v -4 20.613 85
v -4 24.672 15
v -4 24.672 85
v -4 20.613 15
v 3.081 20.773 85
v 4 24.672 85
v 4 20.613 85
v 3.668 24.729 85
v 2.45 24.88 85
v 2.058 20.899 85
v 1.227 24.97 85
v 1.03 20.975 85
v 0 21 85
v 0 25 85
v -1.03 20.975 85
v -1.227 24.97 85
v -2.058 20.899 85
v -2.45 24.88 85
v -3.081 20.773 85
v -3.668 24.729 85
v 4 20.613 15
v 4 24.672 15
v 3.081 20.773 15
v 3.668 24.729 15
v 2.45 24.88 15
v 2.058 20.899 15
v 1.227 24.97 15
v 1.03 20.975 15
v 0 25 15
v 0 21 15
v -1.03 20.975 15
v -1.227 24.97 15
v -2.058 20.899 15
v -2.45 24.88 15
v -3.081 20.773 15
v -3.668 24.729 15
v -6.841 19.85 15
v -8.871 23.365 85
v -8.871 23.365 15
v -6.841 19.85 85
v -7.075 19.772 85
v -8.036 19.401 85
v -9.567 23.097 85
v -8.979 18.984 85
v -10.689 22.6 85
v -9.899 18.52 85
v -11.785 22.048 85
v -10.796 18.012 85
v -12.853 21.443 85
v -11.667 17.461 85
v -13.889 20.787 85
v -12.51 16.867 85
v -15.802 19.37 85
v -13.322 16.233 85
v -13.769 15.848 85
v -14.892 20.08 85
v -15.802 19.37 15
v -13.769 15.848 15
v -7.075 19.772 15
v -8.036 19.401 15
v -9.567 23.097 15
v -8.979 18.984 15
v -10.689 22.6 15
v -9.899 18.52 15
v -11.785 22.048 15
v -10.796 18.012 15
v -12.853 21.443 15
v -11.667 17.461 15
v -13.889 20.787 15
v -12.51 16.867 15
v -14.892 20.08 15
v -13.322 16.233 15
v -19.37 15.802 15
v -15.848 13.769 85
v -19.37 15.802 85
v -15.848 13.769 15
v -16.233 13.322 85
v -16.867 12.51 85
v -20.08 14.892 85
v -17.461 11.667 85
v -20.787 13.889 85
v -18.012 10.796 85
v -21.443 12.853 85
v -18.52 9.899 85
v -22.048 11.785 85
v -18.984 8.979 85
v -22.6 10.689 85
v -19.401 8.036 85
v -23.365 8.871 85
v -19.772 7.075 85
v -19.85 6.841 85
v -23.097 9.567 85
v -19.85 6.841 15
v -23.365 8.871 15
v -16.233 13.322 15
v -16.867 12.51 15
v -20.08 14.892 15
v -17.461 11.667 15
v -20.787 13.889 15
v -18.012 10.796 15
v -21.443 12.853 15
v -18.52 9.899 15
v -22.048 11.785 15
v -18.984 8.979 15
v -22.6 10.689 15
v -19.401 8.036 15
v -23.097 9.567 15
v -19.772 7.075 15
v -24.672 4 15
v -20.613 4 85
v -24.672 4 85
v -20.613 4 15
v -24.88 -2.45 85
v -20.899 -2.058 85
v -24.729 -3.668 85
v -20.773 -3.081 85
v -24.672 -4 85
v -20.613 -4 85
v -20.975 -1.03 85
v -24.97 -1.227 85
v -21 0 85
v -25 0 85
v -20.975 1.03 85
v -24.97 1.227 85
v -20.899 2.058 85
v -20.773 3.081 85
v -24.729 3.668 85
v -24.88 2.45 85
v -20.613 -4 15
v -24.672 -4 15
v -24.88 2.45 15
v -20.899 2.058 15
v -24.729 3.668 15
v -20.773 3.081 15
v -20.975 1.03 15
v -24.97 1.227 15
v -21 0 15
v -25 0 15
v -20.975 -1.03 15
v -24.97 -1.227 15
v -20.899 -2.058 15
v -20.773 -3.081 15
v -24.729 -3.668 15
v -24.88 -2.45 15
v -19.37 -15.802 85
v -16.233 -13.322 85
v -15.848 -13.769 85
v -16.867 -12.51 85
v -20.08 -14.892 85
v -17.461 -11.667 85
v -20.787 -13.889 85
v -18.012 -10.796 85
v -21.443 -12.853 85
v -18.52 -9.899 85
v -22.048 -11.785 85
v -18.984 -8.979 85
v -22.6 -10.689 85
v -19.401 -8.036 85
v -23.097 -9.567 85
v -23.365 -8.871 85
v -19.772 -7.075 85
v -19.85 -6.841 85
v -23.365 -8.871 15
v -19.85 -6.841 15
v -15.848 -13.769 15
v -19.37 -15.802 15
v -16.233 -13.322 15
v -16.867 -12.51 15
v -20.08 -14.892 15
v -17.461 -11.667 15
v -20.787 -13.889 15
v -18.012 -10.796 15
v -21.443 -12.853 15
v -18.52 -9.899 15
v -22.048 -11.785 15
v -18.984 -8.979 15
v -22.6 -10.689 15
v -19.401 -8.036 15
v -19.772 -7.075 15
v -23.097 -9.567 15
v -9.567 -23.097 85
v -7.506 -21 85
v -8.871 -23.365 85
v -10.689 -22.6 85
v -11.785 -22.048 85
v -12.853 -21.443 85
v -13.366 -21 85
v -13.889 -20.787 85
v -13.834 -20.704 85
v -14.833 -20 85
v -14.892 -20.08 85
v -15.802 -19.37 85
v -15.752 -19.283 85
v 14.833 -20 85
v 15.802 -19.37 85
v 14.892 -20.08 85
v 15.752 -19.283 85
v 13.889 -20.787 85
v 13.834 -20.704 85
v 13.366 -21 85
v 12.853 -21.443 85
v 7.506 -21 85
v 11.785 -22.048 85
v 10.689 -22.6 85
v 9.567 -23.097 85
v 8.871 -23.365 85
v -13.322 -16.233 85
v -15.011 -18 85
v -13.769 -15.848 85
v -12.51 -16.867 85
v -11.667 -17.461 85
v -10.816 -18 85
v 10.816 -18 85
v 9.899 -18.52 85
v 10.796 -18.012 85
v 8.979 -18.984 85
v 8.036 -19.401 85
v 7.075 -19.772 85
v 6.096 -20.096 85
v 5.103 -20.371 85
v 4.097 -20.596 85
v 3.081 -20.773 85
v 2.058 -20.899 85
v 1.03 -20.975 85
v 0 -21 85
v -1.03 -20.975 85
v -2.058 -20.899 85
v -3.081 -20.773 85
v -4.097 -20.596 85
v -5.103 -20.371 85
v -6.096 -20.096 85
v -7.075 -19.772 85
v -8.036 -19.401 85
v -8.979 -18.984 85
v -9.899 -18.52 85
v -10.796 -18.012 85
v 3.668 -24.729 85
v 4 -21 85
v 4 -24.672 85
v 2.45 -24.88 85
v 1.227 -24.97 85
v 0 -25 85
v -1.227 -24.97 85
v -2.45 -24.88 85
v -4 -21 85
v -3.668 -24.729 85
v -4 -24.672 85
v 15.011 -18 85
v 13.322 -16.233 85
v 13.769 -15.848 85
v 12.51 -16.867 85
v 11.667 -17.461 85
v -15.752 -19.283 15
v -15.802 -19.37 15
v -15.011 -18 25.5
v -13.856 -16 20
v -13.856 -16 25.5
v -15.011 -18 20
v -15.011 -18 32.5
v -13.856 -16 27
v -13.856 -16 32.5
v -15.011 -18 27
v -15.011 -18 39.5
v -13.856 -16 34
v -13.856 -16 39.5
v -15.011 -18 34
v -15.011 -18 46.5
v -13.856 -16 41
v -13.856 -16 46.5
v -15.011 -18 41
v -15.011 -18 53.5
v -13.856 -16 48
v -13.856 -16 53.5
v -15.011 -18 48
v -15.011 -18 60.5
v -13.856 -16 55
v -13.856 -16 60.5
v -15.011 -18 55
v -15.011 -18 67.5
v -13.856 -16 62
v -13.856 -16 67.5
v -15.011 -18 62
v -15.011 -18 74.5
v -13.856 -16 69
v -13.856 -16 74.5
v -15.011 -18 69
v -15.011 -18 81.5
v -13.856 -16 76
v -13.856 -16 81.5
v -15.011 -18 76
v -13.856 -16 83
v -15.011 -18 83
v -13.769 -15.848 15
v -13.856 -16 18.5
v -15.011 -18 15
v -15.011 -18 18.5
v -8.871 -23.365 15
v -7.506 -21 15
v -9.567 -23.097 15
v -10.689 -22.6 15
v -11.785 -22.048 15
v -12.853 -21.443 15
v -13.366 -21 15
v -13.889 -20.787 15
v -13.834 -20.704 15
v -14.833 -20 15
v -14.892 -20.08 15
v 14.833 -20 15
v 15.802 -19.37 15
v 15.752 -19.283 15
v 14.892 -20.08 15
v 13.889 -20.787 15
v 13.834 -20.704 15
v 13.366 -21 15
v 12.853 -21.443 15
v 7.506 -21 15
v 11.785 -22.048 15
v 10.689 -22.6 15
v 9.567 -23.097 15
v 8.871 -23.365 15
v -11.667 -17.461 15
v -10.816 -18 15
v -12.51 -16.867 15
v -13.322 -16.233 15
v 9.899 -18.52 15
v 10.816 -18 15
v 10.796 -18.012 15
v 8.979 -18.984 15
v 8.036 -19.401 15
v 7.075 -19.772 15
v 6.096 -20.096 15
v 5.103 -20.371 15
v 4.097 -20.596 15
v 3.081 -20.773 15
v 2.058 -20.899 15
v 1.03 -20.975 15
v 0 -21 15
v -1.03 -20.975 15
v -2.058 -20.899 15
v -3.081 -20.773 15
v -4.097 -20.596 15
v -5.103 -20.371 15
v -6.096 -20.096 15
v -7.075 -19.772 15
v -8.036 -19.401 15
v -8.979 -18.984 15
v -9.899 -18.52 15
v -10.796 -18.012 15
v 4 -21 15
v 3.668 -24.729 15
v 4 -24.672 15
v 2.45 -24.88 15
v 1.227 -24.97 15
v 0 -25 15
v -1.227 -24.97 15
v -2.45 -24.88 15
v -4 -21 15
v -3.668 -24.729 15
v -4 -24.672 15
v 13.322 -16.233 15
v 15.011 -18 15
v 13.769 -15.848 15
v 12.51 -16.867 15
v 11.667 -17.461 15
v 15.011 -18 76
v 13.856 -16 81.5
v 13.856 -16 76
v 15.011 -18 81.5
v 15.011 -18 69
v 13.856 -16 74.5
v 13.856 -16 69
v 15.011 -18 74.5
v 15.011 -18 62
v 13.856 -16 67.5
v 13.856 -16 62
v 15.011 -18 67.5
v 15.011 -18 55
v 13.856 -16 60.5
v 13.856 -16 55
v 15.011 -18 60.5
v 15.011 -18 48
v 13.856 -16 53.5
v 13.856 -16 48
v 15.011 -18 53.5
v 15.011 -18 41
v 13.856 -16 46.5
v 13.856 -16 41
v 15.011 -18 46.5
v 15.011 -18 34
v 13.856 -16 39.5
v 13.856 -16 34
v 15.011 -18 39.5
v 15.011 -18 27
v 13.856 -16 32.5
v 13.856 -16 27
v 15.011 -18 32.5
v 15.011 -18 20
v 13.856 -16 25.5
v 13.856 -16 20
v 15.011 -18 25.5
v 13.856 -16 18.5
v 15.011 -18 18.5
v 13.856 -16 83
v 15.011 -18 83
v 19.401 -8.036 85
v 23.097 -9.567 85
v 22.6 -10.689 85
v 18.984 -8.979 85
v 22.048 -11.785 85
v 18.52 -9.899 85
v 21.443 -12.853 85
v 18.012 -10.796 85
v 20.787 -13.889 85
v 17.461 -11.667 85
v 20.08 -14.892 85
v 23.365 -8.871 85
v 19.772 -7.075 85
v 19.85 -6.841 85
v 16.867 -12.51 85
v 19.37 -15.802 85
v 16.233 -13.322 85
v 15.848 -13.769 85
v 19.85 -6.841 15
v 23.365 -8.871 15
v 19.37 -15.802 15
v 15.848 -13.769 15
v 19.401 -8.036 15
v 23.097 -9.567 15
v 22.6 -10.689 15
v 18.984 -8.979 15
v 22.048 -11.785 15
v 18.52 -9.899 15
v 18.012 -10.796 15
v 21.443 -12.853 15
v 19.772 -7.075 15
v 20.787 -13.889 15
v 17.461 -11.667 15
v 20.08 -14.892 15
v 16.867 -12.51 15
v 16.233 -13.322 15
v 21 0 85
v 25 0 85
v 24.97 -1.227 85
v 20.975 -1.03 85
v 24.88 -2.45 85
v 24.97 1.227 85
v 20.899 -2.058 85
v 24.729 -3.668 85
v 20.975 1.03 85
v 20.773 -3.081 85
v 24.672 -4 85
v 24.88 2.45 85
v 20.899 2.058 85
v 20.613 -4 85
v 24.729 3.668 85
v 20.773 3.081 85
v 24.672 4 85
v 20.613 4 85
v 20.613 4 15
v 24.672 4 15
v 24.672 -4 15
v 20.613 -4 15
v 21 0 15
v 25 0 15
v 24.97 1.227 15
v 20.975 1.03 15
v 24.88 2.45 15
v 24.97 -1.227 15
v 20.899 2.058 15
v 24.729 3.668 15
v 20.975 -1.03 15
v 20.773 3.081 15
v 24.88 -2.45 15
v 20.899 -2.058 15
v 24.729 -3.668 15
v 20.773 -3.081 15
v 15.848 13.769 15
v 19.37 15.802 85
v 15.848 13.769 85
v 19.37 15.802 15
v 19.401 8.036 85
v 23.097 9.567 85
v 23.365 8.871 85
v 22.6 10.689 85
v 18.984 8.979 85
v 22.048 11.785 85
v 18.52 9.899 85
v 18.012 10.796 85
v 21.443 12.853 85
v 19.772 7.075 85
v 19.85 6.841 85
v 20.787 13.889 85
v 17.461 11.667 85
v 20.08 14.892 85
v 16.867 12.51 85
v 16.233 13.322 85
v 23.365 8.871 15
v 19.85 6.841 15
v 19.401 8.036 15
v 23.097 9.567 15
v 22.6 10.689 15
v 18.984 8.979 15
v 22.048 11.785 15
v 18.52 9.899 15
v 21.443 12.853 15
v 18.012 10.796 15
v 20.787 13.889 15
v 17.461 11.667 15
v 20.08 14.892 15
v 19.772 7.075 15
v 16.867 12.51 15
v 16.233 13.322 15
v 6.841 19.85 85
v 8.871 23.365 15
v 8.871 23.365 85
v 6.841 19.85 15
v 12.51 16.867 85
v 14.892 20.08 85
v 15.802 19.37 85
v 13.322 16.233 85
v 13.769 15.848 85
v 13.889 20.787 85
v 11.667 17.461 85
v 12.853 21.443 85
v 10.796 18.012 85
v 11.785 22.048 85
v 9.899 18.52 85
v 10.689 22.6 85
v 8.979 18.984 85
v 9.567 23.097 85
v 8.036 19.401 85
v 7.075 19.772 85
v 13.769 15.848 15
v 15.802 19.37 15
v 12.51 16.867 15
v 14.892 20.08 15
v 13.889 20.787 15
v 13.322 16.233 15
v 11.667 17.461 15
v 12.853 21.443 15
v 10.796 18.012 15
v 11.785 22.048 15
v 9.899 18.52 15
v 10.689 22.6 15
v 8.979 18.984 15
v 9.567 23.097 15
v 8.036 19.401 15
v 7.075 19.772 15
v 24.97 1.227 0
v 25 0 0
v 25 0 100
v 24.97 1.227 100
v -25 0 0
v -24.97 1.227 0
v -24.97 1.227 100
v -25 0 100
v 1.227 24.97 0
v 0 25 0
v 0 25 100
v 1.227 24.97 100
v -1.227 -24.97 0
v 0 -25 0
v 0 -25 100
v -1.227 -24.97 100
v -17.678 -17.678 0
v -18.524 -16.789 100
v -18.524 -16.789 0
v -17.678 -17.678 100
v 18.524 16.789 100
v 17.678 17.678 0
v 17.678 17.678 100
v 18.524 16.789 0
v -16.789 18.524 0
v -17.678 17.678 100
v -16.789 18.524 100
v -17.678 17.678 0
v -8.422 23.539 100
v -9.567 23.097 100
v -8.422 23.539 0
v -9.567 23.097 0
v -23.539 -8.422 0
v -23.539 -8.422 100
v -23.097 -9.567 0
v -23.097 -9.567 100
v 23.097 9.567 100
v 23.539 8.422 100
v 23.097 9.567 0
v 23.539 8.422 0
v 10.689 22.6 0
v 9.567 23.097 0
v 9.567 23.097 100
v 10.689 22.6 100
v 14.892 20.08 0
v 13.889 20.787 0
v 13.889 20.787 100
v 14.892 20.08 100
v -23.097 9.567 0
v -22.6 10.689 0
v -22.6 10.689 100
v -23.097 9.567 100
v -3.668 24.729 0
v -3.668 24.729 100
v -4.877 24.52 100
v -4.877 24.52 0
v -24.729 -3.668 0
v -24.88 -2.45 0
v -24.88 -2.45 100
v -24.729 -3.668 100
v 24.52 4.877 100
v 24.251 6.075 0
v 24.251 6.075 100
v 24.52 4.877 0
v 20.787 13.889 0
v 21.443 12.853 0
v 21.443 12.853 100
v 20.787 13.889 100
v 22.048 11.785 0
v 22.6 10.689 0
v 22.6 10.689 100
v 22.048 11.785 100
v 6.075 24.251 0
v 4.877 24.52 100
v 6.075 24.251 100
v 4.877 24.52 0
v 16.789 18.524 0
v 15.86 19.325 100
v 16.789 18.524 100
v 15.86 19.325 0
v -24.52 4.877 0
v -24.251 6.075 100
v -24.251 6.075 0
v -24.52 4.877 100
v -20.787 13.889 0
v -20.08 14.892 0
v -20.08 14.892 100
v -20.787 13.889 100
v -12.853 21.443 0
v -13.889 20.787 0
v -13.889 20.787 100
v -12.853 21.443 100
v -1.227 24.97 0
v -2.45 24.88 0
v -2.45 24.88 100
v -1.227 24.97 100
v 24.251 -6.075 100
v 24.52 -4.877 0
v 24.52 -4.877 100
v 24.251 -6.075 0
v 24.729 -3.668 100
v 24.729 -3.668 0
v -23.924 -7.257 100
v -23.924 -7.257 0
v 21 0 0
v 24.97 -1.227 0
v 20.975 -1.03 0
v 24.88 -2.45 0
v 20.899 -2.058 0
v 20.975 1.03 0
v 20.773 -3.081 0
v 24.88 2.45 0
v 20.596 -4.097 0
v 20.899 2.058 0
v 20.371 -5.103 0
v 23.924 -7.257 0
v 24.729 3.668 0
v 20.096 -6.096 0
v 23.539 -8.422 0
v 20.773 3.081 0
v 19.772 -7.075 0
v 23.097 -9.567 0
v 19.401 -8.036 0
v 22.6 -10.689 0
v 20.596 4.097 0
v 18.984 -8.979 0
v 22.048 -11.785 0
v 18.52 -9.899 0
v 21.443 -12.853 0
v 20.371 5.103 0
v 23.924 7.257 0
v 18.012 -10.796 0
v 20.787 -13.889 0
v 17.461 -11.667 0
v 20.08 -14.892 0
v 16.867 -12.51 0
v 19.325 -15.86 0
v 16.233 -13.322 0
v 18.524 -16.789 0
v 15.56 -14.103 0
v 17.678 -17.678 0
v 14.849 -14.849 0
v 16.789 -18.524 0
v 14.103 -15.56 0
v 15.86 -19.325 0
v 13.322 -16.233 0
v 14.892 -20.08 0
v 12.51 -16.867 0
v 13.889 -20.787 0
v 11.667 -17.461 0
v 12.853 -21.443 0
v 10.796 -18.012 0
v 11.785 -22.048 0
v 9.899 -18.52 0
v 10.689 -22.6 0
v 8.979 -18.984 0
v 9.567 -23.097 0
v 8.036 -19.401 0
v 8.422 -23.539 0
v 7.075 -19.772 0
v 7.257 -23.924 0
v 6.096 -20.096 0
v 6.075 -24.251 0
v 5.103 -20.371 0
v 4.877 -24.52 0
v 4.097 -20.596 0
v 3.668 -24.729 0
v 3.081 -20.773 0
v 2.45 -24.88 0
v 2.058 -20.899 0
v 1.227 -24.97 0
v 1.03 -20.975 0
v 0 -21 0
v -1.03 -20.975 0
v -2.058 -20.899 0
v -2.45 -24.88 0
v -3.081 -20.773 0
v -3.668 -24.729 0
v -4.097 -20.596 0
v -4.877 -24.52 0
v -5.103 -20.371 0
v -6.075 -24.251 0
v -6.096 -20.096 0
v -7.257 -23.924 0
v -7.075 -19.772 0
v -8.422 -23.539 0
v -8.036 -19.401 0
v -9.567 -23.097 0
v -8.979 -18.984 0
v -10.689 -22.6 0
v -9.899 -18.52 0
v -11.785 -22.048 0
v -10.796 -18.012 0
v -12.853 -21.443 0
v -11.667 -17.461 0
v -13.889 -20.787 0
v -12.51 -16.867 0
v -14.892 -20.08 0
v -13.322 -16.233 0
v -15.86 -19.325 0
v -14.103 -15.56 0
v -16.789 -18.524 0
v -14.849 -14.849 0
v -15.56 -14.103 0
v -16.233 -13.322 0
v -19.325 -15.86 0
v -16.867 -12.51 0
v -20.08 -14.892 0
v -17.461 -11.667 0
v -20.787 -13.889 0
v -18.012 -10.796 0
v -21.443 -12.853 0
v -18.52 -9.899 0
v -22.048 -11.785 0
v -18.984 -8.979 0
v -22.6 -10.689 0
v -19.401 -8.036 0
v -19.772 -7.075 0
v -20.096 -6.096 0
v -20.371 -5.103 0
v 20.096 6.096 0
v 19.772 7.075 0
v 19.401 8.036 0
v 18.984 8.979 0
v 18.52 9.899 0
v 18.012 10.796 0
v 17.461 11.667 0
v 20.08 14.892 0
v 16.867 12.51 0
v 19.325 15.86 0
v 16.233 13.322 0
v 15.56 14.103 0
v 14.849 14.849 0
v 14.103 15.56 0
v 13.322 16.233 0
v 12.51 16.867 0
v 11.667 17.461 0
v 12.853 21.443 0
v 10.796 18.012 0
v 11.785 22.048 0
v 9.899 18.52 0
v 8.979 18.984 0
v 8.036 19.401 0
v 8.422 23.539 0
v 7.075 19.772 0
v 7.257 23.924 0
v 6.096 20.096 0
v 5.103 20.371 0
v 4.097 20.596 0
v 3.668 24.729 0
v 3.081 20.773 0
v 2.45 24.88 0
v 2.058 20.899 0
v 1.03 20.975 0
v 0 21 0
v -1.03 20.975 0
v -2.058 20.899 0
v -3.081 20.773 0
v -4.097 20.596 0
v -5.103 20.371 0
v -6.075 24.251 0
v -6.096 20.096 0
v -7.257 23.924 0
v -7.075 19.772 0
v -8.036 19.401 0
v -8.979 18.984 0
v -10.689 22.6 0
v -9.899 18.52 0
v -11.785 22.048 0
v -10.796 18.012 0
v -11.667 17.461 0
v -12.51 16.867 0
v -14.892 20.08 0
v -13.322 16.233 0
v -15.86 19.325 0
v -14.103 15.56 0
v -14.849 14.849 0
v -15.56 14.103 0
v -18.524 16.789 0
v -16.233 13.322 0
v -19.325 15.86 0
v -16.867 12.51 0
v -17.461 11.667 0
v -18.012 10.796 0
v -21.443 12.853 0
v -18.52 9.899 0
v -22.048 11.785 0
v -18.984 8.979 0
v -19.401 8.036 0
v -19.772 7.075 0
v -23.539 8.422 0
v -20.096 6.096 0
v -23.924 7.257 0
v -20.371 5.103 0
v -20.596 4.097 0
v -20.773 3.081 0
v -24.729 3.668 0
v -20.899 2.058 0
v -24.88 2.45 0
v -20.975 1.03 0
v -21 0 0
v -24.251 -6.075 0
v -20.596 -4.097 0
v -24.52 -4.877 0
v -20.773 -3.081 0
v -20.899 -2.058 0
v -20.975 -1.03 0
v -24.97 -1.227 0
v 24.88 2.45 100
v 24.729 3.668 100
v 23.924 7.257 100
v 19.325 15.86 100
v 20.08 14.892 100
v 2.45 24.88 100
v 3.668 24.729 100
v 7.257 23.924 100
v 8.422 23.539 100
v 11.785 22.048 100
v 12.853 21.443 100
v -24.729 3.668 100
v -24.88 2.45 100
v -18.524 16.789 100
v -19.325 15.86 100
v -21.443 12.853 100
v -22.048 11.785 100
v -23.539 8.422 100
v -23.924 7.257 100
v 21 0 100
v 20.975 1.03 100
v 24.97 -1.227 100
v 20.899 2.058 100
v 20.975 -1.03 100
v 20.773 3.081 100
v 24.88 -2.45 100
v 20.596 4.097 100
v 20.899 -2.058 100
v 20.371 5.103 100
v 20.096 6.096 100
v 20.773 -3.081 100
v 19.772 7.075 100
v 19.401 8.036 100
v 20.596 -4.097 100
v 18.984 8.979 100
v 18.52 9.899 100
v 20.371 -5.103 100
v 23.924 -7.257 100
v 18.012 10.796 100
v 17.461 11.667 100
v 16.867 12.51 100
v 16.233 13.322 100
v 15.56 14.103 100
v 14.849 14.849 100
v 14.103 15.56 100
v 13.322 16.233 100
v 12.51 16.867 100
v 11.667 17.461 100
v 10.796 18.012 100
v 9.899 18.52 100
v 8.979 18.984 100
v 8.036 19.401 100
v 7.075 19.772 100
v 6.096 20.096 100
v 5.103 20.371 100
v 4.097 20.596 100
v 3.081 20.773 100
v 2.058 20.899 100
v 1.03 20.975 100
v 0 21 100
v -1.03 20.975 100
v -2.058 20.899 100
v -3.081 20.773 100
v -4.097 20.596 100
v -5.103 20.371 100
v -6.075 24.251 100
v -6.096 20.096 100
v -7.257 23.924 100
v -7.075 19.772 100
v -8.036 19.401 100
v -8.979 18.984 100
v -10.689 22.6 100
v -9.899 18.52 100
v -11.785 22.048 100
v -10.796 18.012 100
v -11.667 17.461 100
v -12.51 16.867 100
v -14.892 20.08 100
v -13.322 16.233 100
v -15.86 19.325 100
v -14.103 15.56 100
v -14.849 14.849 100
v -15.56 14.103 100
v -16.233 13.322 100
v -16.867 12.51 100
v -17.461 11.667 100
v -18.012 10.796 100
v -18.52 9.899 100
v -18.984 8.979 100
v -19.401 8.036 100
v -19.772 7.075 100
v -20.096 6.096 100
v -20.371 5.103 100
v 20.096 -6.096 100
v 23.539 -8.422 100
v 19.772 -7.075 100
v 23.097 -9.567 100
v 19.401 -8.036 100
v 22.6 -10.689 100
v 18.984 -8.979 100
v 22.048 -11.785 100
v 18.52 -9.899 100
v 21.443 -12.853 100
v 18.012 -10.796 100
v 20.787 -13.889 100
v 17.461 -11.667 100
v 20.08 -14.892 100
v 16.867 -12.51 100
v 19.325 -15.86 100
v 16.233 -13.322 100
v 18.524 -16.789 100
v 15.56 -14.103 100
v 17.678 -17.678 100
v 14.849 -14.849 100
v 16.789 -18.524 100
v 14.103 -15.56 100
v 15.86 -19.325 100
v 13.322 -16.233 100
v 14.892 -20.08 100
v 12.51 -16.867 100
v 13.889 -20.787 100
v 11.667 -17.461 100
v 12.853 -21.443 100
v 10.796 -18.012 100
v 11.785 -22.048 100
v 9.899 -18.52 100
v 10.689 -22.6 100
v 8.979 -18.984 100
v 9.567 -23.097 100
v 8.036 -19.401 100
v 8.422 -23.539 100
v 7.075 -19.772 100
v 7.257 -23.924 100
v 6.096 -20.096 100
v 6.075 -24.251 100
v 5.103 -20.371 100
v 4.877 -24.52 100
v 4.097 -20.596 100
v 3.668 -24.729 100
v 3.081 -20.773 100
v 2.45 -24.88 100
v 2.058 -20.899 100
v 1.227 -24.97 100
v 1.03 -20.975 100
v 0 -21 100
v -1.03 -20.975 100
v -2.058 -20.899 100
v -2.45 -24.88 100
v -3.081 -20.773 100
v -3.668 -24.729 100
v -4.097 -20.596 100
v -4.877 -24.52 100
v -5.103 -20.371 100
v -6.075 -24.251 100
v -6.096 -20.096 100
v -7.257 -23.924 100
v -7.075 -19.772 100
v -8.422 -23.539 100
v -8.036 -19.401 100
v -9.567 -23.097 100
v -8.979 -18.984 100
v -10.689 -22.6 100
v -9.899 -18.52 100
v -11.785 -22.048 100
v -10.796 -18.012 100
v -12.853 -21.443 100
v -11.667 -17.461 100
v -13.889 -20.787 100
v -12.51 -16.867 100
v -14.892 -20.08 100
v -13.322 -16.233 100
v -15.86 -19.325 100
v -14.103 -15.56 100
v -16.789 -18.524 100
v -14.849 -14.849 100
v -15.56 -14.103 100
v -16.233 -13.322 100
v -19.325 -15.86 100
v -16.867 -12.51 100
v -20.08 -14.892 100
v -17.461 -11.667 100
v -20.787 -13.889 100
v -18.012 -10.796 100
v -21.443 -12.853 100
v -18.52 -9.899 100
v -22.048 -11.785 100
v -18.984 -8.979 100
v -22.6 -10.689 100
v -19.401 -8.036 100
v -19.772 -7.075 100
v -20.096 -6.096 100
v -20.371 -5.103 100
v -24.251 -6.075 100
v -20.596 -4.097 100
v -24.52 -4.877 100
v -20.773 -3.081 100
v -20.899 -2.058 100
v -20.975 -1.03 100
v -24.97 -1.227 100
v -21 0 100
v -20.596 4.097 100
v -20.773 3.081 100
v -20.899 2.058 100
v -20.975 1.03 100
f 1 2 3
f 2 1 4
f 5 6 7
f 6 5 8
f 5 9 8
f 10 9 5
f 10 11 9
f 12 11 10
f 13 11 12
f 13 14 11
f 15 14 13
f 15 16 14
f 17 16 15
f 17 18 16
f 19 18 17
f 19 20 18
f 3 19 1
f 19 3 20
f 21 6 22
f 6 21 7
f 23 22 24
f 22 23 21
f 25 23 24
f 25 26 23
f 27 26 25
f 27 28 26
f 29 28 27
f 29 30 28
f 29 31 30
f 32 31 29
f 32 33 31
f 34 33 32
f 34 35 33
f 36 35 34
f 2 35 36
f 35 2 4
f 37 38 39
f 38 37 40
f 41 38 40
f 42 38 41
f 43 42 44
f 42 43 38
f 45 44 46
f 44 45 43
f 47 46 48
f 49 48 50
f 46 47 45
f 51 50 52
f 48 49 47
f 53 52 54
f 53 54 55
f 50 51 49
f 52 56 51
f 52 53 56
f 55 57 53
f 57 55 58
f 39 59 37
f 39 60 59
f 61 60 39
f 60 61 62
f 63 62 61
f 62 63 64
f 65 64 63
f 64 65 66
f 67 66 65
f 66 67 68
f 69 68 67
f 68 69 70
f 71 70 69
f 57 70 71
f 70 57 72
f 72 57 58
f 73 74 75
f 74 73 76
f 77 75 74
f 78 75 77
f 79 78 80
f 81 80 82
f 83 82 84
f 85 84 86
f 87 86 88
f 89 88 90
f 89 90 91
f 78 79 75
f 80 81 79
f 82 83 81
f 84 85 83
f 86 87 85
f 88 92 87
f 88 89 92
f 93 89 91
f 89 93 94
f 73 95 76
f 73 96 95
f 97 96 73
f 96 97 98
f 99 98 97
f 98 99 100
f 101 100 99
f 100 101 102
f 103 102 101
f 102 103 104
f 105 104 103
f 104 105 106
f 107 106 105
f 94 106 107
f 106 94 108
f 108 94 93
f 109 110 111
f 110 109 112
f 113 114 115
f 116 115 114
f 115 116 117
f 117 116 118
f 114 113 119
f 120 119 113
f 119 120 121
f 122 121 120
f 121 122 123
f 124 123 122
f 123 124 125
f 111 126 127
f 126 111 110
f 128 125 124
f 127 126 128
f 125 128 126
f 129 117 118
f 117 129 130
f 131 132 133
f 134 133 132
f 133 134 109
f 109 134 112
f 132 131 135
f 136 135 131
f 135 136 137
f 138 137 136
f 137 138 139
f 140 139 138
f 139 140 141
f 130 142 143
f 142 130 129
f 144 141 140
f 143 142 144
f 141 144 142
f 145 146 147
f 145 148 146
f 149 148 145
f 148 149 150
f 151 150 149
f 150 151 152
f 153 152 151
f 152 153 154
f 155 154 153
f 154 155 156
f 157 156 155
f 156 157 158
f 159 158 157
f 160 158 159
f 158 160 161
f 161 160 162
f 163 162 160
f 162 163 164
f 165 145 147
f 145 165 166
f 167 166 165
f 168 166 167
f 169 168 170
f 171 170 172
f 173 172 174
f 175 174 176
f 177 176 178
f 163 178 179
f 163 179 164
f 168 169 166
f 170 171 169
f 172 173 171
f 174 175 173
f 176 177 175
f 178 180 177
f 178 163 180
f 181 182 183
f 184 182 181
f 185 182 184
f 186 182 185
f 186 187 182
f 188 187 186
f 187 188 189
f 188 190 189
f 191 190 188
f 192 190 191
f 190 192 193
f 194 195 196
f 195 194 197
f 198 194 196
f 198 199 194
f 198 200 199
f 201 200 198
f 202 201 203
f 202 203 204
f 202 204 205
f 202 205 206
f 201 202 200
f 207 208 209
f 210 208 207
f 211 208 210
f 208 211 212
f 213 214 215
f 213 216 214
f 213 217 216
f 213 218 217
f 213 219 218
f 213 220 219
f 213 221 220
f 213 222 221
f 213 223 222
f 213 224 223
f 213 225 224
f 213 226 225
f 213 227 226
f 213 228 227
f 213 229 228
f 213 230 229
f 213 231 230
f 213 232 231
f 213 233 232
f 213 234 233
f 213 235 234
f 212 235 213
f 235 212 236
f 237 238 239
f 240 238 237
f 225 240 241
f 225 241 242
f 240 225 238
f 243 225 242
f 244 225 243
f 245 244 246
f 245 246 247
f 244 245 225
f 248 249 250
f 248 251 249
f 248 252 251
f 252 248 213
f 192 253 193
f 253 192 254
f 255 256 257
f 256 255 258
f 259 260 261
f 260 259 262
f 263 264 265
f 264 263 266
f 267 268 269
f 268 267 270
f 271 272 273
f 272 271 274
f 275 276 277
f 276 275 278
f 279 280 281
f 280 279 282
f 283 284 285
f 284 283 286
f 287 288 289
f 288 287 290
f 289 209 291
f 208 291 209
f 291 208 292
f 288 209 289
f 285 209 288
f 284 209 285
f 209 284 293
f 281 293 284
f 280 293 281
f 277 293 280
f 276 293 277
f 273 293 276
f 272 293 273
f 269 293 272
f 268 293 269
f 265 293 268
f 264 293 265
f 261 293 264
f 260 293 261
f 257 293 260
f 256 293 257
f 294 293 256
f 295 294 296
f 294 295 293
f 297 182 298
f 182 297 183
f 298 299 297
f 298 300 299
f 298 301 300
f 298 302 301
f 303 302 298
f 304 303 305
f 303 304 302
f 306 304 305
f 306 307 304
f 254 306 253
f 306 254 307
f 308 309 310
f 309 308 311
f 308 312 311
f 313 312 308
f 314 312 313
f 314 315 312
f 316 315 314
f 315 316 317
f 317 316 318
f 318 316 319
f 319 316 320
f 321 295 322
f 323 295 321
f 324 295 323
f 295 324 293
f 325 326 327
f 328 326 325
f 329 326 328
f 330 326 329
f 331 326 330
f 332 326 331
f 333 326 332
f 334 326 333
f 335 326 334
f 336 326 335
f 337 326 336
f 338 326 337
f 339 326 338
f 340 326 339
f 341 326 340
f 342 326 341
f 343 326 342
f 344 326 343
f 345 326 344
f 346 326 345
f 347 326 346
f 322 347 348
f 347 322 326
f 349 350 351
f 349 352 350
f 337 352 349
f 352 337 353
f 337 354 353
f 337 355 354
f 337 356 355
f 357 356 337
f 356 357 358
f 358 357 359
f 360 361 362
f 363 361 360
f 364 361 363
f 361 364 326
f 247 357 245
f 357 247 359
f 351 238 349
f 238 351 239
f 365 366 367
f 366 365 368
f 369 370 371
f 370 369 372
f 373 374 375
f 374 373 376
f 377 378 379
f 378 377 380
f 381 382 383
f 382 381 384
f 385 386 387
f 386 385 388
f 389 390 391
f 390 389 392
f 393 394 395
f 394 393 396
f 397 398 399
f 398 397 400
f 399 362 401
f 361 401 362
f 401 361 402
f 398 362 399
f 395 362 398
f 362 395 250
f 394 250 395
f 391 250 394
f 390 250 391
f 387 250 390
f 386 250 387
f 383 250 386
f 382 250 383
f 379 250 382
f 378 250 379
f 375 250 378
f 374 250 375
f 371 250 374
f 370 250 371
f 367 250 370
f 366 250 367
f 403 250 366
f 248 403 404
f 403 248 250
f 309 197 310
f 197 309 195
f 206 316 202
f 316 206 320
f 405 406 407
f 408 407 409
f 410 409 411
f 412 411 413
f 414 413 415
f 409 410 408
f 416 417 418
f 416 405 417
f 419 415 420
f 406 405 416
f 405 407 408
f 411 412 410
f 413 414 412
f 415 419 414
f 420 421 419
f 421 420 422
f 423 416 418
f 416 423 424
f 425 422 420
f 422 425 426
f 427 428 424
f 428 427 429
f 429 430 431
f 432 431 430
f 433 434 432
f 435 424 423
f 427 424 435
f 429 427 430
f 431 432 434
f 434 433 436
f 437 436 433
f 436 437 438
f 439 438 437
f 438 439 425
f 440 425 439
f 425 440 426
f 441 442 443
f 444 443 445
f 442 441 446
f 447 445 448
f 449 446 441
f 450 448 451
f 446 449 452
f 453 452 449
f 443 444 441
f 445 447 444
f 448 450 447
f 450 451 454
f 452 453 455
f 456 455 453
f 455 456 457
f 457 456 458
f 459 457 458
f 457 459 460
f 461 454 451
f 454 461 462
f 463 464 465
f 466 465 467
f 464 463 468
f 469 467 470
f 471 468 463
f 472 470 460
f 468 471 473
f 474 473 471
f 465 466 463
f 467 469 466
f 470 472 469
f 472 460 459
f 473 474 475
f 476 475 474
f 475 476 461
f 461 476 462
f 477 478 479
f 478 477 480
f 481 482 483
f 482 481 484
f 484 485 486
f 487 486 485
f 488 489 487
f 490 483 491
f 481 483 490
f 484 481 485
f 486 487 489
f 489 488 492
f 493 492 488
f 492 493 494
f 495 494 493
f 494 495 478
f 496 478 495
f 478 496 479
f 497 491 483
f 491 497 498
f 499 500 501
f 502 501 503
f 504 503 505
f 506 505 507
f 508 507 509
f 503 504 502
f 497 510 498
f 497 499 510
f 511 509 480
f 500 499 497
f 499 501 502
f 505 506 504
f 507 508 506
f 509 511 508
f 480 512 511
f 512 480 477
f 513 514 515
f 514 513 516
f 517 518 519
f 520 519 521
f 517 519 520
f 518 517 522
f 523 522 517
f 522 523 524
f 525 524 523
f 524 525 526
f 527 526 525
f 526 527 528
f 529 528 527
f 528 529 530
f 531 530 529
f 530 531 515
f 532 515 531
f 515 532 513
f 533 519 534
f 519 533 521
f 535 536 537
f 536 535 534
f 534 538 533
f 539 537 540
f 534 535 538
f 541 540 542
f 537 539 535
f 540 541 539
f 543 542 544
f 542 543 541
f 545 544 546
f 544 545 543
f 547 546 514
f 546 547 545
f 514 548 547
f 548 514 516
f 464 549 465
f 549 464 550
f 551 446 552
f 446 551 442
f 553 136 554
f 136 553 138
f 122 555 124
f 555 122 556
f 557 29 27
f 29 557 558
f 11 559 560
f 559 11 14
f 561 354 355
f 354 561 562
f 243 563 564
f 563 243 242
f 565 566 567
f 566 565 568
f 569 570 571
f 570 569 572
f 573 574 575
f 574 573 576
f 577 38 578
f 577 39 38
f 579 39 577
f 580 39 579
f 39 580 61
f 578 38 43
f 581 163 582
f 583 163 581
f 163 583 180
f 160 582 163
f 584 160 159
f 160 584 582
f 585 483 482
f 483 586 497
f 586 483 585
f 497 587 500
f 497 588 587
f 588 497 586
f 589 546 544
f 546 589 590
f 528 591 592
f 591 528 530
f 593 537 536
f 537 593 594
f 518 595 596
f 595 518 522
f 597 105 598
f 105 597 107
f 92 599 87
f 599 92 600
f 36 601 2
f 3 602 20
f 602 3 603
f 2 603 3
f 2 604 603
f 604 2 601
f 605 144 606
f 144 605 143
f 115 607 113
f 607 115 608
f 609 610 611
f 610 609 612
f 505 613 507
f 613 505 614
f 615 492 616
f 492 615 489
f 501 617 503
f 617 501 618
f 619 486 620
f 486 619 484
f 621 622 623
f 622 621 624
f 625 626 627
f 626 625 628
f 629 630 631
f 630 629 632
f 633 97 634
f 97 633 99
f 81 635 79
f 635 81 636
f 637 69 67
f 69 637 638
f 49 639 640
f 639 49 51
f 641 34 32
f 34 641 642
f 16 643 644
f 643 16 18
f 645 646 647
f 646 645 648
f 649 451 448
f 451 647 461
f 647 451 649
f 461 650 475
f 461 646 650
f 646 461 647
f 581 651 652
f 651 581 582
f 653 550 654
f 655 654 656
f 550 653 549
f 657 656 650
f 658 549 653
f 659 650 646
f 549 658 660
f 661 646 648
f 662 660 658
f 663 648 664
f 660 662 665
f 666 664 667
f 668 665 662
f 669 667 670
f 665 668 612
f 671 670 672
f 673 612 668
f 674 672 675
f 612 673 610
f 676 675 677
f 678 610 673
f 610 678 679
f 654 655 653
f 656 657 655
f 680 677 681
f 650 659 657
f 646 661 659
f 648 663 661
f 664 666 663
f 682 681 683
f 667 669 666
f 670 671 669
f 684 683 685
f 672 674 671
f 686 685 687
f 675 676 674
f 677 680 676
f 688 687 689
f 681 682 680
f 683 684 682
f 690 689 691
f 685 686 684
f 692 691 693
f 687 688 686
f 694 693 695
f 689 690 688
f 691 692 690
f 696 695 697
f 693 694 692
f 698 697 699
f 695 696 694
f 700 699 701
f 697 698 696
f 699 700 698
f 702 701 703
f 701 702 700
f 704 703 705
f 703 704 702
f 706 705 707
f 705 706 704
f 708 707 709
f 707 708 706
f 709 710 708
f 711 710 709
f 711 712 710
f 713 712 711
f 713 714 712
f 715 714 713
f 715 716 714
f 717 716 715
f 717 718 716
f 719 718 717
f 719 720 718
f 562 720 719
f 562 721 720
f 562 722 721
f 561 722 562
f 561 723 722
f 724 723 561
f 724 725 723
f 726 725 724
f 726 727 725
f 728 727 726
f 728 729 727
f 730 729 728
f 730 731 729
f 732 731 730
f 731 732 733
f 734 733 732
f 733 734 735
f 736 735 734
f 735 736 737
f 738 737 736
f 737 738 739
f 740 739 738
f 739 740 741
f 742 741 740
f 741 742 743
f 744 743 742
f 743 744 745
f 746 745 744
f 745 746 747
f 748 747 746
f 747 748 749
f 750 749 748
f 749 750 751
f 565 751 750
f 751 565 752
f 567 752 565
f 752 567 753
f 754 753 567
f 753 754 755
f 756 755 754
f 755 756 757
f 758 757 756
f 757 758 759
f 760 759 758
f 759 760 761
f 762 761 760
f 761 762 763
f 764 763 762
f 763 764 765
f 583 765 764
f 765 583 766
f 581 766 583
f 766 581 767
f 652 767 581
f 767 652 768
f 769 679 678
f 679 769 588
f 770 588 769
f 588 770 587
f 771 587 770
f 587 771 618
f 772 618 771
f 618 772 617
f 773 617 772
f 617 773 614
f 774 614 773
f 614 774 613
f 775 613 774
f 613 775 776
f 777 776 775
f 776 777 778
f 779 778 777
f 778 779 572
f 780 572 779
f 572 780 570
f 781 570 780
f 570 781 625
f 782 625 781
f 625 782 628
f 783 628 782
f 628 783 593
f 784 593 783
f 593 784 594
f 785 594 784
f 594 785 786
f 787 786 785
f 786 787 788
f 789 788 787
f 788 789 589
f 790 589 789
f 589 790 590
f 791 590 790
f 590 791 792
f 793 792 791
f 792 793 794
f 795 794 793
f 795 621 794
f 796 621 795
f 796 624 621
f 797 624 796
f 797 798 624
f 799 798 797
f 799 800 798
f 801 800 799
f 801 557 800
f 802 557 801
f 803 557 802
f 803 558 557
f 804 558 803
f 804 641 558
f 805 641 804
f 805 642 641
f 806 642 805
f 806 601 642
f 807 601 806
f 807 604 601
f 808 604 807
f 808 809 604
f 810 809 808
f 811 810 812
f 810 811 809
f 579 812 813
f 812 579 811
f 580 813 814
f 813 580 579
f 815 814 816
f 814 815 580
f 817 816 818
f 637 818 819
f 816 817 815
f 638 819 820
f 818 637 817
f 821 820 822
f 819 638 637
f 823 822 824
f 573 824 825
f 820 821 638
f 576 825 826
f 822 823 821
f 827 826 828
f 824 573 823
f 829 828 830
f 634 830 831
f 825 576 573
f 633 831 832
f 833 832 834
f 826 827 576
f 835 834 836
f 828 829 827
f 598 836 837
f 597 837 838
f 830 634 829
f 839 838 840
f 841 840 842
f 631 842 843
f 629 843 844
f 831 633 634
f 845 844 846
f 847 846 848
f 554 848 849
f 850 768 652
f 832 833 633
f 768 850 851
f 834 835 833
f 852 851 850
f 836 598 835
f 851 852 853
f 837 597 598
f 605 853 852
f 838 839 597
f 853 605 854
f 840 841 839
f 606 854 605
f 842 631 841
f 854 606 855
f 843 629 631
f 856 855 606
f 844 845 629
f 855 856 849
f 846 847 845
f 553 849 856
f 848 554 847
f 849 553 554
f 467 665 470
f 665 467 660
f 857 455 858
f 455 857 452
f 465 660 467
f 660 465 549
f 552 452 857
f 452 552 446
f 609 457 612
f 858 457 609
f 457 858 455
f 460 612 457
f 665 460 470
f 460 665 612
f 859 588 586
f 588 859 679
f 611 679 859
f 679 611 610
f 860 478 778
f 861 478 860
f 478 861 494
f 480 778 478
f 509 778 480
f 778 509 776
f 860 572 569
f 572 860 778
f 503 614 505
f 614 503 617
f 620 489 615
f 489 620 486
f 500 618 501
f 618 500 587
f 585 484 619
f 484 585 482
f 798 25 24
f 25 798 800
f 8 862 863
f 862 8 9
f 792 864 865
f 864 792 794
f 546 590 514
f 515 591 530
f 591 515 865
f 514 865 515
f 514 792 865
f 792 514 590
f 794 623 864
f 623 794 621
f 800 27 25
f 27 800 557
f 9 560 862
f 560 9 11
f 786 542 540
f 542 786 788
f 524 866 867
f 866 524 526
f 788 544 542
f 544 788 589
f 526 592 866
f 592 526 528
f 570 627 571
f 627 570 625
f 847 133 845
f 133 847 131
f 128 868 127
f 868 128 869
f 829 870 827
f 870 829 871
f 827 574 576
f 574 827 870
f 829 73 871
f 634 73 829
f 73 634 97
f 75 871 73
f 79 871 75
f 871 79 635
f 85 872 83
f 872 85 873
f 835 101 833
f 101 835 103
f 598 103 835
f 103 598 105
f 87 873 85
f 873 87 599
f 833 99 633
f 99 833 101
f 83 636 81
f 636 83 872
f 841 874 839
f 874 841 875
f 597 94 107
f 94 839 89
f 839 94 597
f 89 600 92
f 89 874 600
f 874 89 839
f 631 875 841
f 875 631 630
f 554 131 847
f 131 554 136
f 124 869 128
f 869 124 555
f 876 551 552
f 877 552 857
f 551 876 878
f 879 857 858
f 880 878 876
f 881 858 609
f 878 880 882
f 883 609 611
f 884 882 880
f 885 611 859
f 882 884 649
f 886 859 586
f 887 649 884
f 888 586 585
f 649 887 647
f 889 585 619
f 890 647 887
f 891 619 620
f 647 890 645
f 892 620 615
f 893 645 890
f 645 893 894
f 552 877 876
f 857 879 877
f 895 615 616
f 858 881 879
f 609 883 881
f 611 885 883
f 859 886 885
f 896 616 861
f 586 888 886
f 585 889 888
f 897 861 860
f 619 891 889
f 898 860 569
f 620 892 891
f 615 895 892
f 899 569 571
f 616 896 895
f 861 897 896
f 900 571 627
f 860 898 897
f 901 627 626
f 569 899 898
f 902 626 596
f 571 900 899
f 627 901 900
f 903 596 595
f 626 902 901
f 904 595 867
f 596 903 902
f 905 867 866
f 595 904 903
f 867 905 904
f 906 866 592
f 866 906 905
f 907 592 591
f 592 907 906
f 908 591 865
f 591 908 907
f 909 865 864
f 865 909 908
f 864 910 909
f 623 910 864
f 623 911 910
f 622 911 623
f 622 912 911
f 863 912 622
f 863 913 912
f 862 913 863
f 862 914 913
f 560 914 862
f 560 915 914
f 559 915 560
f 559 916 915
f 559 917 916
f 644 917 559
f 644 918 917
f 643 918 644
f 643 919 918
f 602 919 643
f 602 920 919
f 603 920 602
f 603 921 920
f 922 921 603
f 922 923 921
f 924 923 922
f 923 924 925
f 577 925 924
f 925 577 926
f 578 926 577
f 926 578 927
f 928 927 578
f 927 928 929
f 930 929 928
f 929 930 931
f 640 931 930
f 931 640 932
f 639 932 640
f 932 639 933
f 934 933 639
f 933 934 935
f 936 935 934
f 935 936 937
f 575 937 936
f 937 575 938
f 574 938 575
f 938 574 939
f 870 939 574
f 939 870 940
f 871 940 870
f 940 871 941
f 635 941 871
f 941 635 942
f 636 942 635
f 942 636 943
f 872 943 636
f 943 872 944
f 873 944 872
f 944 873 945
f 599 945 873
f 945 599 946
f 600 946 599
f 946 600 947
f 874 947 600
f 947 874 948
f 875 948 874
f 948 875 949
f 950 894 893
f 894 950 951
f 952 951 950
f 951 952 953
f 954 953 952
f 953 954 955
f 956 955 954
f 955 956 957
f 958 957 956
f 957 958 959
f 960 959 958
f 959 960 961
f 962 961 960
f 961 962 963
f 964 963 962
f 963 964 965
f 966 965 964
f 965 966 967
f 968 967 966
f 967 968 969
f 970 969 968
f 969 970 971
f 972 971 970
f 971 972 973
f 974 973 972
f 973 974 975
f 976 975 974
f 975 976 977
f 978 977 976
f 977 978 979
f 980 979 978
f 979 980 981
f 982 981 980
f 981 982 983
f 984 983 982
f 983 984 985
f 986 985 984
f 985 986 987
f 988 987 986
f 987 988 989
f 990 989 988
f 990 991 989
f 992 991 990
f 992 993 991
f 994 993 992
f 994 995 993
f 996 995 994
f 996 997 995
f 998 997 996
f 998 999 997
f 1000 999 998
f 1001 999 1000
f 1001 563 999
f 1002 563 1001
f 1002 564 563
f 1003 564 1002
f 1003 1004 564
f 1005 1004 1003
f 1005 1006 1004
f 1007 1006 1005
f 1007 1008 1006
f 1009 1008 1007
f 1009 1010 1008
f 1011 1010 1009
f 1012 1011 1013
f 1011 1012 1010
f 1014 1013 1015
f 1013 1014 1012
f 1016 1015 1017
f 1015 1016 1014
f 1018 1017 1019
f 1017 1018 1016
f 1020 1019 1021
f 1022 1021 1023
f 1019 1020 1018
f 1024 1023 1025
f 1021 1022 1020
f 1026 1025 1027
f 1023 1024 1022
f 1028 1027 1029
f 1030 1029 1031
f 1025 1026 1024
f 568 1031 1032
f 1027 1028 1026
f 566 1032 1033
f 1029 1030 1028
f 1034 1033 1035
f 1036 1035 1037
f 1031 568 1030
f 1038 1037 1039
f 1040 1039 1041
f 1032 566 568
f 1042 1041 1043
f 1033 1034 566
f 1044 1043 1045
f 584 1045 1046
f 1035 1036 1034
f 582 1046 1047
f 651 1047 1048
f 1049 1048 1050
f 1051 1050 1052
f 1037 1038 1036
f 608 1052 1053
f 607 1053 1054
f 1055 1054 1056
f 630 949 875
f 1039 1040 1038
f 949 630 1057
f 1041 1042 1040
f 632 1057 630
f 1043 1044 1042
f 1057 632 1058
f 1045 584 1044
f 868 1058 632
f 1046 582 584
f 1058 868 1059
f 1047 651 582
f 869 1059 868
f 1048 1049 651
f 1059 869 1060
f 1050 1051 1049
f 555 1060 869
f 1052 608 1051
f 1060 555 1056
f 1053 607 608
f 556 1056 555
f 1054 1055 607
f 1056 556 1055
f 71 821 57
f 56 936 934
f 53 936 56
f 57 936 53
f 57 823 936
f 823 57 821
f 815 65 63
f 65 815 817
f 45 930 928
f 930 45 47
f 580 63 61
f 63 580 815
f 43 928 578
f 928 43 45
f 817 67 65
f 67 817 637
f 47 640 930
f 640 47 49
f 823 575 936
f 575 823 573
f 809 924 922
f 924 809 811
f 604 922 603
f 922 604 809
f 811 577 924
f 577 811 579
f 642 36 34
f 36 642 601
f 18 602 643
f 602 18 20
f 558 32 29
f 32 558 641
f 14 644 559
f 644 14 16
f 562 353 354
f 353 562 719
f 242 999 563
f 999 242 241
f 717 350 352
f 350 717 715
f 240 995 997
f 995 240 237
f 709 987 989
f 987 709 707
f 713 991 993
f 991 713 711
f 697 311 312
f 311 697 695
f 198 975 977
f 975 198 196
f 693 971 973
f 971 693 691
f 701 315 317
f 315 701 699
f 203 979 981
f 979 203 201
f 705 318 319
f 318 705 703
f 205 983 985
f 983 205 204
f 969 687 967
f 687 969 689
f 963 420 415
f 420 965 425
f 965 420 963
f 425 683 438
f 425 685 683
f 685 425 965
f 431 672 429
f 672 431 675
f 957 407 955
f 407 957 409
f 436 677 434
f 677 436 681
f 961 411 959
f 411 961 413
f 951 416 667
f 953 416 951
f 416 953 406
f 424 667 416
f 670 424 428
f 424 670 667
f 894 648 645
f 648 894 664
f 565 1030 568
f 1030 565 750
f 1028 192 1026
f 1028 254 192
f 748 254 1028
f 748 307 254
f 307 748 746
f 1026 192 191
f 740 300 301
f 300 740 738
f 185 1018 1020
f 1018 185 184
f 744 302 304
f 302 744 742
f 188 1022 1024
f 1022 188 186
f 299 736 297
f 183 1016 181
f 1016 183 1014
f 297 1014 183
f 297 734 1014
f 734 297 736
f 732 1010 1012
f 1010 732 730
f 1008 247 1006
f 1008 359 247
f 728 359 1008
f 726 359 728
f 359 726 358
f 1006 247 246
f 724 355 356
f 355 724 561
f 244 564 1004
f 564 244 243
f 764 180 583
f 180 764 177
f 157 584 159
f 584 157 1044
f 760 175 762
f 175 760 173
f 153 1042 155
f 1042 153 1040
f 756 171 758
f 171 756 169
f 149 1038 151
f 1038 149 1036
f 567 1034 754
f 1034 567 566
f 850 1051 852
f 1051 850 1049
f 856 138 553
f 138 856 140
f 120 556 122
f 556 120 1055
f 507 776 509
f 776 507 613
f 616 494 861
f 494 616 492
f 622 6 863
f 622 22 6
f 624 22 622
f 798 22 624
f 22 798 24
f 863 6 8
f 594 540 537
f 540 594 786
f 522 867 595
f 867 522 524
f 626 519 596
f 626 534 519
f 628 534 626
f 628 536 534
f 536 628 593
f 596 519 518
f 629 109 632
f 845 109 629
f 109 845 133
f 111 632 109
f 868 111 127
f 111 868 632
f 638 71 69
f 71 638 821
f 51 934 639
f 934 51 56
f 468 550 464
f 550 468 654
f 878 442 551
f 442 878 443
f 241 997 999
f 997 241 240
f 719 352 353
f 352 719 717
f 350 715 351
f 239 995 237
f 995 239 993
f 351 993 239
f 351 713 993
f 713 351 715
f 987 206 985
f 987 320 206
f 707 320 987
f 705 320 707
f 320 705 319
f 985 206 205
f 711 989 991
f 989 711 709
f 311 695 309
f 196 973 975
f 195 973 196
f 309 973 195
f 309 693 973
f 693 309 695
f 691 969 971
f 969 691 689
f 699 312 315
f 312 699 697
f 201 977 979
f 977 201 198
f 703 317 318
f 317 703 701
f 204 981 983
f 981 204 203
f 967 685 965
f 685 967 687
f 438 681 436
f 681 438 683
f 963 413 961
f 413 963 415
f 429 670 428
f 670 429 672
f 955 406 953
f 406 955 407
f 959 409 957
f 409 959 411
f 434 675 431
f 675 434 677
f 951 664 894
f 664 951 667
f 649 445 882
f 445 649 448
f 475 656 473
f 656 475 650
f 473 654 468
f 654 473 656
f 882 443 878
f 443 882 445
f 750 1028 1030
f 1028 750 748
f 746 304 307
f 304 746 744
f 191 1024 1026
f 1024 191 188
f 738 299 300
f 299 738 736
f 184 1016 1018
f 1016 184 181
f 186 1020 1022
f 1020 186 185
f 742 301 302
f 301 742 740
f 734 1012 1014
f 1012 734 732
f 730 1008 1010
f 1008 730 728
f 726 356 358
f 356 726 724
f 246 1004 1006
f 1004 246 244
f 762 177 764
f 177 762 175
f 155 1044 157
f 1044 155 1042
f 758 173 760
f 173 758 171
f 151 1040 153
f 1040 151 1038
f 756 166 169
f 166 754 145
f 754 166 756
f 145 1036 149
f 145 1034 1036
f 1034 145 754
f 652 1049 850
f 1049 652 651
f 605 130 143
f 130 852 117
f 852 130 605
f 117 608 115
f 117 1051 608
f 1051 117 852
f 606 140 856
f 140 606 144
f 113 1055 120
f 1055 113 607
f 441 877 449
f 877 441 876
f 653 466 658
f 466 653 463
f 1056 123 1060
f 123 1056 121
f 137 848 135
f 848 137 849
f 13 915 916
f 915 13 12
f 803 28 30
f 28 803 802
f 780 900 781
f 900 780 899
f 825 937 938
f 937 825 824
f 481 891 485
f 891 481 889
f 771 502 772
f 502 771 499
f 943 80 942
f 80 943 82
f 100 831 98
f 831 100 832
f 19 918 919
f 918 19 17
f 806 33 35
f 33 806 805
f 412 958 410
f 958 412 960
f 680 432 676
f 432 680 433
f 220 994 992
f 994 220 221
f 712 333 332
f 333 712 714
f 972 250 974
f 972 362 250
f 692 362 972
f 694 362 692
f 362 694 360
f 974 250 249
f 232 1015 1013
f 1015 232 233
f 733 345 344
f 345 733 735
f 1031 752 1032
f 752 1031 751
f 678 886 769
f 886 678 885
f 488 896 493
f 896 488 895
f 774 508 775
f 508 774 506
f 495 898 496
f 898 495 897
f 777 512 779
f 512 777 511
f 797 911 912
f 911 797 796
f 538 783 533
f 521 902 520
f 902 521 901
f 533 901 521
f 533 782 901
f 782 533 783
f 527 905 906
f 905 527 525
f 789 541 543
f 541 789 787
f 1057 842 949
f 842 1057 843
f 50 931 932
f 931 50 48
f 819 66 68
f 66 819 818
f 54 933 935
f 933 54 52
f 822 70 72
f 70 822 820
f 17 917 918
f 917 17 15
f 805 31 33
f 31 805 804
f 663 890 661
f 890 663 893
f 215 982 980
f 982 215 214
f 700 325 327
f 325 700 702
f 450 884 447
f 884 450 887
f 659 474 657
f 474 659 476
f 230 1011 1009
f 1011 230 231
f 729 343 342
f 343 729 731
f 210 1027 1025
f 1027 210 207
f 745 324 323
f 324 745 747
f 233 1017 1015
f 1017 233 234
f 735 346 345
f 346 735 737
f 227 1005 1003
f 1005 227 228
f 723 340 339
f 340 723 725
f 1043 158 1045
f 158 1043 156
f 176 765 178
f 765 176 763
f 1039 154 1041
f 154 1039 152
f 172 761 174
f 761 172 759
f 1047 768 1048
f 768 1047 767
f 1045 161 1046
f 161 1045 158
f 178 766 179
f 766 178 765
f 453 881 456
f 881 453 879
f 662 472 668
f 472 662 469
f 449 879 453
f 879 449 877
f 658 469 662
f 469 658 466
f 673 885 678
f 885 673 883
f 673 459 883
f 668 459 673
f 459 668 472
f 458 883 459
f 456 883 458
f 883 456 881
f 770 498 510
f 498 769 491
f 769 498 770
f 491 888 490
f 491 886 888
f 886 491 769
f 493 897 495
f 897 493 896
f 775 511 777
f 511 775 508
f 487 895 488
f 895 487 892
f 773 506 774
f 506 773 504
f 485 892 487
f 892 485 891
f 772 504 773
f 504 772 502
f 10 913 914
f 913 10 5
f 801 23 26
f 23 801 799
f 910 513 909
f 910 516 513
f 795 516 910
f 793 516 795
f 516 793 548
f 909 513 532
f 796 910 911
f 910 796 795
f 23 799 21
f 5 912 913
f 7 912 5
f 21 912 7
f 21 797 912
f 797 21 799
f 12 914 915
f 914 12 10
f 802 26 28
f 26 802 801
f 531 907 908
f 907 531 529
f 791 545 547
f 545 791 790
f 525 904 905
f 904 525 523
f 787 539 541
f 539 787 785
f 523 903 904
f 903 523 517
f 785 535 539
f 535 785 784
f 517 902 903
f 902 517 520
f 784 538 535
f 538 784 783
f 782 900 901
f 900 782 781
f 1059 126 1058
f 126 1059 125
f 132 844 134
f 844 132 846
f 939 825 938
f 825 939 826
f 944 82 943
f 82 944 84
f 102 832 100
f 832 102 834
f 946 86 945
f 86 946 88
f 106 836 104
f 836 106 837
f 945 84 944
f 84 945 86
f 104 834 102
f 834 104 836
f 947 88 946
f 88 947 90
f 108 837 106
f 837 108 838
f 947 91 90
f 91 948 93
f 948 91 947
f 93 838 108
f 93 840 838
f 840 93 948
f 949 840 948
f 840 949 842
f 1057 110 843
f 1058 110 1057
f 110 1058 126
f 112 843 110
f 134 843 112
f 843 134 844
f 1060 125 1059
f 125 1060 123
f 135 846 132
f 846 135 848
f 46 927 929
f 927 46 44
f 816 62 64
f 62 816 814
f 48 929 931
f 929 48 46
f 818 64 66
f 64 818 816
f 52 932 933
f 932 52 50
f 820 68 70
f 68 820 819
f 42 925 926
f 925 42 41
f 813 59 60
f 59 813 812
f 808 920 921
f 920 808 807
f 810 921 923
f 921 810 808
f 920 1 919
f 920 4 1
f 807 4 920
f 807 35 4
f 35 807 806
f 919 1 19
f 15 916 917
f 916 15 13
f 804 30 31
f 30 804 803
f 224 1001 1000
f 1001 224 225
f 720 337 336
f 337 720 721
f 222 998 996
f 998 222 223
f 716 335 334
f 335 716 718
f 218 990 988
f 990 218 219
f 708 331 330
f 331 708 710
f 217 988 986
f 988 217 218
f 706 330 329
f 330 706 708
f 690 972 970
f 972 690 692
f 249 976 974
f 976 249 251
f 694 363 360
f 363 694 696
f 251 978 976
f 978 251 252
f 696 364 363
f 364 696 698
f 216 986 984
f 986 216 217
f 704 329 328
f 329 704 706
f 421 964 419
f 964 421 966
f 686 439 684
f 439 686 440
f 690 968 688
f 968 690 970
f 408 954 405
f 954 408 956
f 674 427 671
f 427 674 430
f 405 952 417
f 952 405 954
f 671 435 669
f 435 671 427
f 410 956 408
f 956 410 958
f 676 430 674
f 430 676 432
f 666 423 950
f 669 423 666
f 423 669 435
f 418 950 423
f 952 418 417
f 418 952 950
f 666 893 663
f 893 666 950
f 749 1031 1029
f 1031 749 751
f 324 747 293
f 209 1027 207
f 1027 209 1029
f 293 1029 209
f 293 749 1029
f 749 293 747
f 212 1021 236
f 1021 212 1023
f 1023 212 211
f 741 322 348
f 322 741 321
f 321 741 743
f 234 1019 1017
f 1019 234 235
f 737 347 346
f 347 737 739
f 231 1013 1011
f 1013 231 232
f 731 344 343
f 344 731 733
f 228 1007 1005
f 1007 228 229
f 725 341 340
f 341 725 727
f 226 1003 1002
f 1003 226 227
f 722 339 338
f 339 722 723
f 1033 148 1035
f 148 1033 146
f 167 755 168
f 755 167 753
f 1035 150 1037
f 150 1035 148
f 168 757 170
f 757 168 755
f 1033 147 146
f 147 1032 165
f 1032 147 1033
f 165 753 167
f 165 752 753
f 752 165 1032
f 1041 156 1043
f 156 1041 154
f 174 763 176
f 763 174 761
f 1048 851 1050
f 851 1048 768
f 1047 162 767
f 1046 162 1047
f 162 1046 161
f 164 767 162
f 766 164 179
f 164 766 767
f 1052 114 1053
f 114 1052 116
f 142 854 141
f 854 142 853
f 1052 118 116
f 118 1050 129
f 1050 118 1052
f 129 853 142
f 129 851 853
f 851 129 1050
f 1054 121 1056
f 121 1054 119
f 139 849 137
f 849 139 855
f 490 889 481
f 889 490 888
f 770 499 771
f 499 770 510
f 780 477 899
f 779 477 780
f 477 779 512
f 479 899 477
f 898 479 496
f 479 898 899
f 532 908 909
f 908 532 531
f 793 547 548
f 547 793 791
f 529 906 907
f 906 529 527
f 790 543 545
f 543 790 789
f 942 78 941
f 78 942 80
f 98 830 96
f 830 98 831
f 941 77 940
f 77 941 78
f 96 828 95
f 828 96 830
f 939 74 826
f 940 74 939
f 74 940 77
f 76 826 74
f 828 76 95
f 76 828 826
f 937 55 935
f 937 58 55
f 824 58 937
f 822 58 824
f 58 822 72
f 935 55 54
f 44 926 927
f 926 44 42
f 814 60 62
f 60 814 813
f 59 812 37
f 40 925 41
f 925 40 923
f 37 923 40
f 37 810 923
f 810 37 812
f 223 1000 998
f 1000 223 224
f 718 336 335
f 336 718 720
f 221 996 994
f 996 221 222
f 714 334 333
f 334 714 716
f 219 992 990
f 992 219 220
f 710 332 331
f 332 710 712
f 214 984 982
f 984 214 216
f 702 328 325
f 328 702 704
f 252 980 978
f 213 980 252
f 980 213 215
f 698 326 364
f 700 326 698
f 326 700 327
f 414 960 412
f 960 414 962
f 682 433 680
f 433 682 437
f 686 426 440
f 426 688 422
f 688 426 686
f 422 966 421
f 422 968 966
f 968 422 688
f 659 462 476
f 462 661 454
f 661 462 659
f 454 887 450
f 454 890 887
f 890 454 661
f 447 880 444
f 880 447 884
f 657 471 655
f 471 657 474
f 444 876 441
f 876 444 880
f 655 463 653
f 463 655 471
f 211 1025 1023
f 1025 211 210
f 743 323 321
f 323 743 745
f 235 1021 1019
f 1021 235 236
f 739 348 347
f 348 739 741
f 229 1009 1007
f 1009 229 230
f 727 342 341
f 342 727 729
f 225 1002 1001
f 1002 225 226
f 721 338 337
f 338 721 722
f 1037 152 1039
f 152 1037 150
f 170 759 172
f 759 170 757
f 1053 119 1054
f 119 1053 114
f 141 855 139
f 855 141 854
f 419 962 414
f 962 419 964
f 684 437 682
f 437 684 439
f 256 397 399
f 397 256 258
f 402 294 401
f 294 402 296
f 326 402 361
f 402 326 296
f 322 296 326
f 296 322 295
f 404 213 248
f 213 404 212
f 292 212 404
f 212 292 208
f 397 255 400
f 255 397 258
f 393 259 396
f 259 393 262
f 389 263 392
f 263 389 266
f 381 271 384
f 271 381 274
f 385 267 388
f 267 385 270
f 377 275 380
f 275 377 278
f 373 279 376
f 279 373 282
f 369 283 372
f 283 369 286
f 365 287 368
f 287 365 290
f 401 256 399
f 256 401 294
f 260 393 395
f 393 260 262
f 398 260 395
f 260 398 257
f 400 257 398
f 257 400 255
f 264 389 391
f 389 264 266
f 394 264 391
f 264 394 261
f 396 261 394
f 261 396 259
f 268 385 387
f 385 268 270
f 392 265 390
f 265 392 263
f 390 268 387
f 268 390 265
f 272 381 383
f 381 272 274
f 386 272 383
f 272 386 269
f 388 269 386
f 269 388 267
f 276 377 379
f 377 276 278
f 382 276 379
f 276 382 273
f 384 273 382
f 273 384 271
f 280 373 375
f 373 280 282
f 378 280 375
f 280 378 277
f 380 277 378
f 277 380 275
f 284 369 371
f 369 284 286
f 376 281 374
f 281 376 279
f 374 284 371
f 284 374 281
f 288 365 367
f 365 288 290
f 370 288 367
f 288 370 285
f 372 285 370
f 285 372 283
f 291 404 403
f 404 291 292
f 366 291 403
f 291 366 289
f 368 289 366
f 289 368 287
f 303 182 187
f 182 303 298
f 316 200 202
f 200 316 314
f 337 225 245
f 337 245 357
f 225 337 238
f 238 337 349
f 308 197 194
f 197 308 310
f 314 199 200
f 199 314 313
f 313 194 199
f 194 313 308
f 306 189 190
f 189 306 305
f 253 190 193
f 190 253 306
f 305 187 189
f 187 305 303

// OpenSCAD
// ============================================================
// Hamster Habitat — Parmaklıklı Tünel (kafes tüp + kaymazlı taban)
// Outer r=25 | Inner r=21 | 12 boylamasına yuva | Varsayılan 100mm
// Uçlarda 15mm solid soket bölgesi
// Taban: 50mm geniş düzlem + enine tırtıklar (kaymazlık)
// Baskı: yatay bas, taban tablaya gelsin
// ============================================================
$fn = 128;

module tunel_parmaklik(uzunluk = 100) {
  n_slots  = 12;    // boylamasina yuva sayisi (30° aralik)
  slot_w   = 8;     // yuva genisligi mm
  end_l    = 15;    // her uçta solid soket mm

  plat_w      = 50;    // taban platform genisligi mm
  plat_t      = 3;     // platform kalinligi mm
  plat_y      = -21;   // ic silindirin en alt noktasi (r=21)
  plat_offset = 15;    // end_l kadar uclardan cekilmis — yuva bolgesi temiz

  tirtik_w = 1.5;   // tirtik genisligi mm (Z yonu)
  tirtik_h = 2;     // tirtik yuksekligi mm (Y yonu)
  aralik   = 7;     // tirtikler arasi mm

  color("lightgreen", 0.85)
  union() {
    // Ana tünel gövdesi (yuvalı)
    difference() {
      cylinder(r=25, h=uzunluk);
      // İç geçiş
      translate([0, 0, -0.1]) cylinder(r=21, h=uzunluk + 0.2);
      // 12 boylamasına yuva — sadece orta kısım
      for(a = [0 : 360/n_slots : 359])
        rotate([0, 0, a])
          translate([-slot_w/2, 18, end_l])
            cube([slot_w, 10, uzunluk - 2*end_l]);
    }

    // Taban platformu + tırtıklar — uclardan plat_offset cekilmis, dis ile kirpilmis
    intersection() {
      union() {
        translate([-plat_w/2, plat_y, plat_offset])
          cube([plat_w, plat_t, uzunluk - 2*plat_offset]);
        for(i = [0 : floor((uzunluk - 2*plat_offset - aralik) / aralik)])
          translate([-plat_w/2, plat_y + plat_t, plat_offset + aralik/2 + i*aralik])
            cube([plat_w, tirtik_h, tirtik_w]);
      }
      cylinder(r=24.9, h=uzunluk);
    }
  }
}

tunel_parmaklik();
